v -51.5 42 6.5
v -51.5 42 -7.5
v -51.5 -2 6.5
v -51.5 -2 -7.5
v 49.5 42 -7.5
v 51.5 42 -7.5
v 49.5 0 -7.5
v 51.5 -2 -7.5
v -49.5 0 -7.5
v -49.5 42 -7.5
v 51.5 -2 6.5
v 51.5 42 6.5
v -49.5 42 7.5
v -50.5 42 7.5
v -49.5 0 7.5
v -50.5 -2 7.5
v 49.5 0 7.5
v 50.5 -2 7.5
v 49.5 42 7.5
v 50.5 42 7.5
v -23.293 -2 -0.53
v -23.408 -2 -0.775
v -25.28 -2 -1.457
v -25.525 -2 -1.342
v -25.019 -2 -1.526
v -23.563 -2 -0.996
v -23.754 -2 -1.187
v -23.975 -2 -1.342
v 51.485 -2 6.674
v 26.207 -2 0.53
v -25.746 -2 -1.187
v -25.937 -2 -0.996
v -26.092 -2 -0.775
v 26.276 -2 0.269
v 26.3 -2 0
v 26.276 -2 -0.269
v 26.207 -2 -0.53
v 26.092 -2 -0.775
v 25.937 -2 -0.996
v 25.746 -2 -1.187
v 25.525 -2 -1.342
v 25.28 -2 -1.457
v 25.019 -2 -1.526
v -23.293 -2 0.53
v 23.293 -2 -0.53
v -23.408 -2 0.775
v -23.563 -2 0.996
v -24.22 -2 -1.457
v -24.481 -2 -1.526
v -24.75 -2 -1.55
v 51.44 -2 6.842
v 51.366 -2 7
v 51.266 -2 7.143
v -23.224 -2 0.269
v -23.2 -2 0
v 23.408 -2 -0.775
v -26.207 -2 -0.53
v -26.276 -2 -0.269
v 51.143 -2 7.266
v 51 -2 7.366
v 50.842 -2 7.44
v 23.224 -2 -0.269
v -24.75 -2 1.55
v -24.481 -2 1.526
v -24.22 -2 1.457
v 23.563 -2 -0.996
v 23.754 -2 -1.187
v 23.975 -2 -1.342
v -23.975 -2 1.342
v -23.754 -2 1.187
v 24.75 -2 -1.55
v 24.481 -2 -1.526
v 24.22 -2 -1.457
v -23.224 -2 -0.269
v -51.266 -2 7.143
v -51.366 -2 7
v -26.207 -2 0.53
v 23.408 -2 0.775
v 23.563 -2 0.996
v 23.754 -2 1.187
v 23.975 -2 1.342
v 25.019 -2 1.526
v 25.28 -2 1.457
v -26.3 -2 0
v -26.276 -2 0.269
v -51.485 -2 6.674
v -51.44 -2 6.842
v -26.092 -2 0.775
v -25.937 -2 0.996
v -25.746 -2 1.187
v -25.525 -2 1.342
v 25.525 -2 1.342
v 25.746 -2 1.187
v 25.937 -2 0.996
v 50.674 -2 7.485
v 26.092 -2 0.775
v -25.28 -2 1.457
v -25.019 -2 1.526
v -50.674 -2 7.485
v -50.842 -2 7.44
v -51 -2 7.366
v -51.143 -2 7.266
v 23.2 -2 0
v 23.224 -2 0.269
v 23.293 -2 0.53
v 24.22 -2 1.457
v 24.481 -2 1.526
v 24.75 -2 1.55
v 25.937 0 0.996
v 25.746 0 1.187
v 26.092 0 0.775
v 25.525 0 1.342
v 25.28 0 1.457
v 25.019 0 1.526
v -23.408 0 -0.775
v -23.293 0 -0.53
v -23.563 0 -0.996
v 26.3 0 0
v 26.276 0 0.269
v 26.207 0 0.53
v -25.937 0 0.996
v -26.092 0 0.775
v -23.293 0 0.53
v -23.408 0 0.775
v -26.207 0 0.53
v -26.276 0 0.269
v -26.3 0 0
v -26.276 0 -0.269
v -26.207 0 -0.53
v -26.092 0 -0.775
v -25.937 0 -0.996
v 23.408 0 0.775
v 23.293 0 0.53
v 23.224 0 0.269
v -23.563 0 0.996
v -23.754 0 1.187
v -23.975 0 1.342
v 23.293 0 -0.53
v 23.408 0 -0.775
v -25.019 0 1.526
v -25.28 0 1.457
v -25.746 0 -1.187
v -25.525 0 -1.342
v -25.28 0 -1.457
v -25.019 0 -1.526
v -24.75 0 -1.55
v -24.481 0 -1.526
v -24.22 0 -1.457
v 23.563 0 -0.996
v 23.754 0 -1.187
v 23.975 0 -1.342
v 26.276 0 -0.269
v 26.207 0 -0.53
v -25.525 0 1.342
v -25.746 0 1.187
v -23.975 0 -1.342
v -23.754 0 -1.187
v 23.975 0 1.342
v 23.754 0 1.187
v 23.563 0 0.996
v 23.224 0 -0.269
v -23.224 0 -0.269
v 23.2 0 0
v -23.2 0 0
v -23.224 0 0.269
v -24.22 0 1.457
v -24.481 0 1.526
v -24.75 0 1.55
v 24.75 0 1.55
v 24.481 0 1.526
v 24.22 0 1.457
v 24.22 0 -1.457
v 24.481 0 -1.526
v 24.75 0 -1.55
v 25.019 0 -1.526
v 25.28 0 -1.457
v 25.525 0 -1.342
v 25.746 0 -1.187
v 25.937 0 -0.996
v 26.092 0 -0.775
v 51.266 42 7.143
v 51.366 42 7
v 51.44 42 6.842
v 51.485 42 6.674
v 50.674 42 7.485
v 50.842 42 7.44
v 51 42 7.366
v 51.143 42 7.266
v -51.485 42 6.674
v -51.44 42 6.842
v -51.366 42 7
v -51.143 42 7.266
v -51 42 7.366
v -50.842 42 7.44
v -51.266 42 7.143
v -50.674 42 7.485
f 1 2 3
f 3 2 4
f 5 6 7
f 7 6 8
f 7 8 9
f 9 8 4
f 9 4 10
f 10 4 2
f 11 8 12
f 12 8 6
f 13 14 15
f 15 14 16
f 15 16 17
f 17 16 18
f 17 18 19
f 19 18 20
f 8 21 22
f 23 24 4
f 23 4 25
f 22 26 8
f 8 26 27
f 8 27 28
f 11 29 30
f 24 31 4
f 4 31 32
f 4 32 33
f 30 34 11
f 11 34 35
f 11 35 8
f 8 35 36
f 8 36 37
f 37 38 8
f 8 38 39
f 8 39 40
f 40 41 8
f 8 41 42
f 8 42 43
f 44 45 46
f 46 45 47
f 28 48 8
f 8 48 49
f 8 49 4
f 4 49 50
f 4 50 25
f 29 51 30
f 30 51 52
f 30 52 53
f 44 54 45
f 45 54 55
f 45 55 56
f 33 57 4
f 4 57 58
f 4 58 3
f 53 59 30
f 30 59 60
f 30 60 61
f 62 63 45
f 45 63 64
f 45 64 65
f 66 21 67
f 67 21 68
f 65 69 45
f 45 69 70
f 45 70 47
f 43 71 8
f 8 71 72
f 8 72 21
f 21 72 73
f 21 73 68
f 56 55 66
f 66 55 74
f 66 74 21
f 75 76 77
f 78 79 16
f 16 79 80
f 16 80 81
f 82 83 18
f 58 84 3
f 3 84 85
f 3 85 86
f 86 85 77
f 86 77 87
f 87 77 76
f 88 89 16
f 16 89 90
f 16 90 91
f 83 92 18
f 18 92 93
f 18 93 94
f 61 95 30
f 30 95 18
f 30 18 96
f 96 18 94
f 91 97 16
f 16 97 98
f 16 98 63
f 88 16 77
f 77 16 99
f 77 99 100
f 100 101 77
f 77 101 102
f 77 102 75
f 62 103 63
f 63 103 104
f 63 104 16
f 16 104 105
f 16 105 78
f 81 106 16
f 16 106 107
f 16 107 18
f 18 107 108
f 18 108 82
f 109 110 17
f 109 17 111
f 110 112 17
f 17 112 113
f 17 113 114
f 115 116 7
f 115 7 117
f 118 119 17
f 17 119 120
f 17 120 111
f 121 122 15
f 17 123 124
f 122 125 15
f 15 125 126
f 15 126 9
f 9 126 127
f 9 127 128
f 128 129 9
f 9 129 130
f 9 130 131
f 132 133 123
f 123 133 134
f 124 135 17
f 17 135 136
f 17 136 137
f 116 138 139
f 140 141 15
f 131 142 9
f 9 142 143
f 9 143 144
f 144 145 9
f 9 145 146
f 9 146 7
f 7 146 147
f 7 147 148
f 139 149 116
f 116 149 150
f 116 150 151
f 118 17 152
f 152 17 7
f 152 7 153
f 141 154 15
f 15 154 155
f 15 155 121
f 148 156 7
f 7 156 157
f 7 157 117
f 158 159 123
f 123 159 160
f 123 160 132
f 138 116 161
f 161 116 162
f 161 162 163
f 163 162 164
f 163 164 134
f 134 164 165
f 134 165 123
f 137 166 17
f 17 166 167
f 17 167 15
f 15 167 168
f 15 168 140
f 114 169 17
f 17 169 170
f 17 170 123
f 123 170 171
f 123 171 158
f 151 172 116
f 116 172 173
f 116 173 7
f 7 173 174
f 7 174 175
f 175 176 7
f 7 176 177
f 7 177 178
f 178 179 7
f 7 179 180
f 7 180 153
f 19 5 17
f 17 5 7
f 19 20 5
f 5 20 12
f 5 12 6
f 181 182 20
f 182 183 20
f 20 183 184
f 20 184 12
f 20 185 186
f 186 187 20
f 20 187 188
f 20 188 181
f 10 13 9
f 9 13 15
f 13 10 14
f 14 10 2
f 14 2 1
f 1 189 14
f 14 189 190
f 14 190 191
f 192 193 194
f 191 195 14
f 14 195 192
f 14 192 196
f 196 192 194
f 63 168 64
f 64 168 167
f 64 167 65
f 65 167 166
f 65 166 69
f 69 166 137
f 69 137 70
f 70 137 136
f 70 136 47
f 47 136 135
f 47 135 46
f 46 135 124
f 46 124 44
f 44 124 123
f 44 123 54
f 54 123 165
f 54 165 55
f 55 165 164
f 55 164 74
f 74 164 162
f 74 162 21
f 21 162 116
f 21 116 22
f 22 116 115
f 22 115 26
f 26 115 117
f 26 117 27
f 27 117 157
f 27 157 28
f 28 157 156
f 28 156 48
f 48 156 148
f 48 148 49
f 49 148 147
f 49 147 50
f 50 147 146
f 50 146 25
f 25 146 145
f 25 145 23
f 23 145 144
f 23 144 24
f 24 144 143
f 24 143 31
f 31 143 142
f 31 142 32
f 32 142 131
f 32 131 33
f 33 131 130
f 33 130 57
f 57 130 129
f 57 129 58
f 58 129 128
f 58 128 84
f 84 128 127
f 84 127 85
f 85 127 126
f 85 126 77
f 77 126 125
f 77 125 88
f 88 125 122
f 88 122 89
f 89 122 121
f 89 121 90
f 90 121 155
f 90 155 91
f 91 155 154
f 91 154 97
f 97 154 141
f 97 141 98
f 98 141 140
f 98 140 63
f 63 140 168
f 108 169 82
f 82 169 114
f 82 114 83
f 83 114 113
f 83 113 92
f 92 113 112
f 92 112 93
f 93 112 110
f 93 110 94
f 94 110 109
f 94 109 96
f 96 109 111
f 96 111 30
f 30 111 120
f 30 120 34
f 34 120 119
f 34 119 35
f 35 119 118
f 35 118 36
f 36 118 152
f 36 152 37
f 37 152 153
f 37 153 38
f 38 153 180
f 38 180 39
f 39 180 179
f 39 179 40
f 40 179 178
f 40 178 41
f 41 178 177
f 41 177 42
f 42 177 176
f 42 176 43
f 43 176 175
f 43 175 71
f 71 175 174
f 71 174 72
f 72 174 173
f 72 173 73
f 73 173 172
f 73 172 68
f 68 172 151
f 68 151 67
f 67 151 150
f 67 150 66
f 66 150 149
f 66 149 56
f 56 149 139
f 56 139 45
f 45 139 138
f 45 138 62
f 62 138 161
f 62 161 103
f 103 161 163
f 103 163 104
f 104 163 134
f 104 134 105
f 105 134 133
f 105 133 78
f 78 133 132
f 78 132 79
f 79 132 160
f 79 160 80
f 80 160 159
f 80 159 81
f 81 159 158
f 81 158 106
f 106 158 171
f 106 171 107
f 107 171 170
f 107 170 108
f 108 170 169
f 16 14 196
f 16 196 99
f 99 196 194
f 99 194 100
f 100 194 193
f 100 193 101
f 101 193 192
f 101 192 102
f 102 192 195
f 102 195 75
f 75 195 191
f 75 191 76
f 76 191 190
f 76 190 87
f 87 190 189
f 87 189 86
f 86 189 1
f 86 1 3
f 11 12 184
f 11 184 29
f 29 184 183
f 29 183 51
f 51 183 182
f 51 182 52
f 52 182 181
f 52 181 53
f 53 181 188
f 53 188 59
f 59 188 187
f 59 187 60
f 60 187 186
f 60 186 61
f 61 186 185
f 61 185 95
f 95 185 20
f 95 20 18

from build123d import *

# Parameters (mm, degrees)
ESBO_O1_W                = 103
ESBO_O1_H                = 15
RESSALTO_EXTRUS_O1_DEPTH = 2
ESBO_O2_W                = 2
ESBO_O2_H                = 15
RESSALTO_EXTRUS_O2_DEPTH = 42
ESBO_O4_R                = 1.55
CORTE_EXTRUS_O1_DEPTH    = 2
FILETE1_R                = 1


with BuildPart() as part:
    # Esboço1 → Ressalto-extrusão1 (new body)
    with BuildSketch(Plane(origin=(0, 0, 0), x_dir=(1, 0, 0), z_dir=(0, 1, 0))):
        Rectangle(ESBO_O1_W, ESBO_O1_H)
    extrude(amount=-RESSALTO_EXTRUS_O1_DEPTH)

    # Esboço2 → Ressalto-extrusão2 (add)
    with BuildSketch(Plane(origin=(0, 0, 0), x_dir=(1, 0, 0), z_dir=(0, 1, 0))):
        with Locations((-50.5, 0)):
            Rectangle(ESBO_O2_W, ESBO_O2_H)
        with Locations((50.5, 0)):
            Rectangle(ESBO_O2_W, ESBO_O2_H)
    extrude(amount=RESSALTO_EXTRUS_O2_DEPTH)

    # Esboço4 → Corte-extrusão1 (cut)
    with BuildSketch(Plane(origin=(0, 0, 0), x_dir=(1, 0, 0), z_dir=(0, 1, 0))):
        with Locations(Location((24.75, 0, 0), (0, 0, 270))):
            Circle(ESBO_O4_R)
        with Locations(Location((-24.75, 0, 0), (0, 0, 90))):
            Circle(ESBO_O4_R)
    extrude(amount=-CORTE_EXTRUS_O1_DEPTH, mode=Mode.SUBTRACT)

    # Filete1
    filete1_edges = [part.edges().sort_by_distance(p)[0] for p in [
        (51.5, 20, 7.5),
        (-51.5, 20, 7.5),
    ]]
    fillet(filete1_edges, radius=FILETE1_R)


solid = part.part
